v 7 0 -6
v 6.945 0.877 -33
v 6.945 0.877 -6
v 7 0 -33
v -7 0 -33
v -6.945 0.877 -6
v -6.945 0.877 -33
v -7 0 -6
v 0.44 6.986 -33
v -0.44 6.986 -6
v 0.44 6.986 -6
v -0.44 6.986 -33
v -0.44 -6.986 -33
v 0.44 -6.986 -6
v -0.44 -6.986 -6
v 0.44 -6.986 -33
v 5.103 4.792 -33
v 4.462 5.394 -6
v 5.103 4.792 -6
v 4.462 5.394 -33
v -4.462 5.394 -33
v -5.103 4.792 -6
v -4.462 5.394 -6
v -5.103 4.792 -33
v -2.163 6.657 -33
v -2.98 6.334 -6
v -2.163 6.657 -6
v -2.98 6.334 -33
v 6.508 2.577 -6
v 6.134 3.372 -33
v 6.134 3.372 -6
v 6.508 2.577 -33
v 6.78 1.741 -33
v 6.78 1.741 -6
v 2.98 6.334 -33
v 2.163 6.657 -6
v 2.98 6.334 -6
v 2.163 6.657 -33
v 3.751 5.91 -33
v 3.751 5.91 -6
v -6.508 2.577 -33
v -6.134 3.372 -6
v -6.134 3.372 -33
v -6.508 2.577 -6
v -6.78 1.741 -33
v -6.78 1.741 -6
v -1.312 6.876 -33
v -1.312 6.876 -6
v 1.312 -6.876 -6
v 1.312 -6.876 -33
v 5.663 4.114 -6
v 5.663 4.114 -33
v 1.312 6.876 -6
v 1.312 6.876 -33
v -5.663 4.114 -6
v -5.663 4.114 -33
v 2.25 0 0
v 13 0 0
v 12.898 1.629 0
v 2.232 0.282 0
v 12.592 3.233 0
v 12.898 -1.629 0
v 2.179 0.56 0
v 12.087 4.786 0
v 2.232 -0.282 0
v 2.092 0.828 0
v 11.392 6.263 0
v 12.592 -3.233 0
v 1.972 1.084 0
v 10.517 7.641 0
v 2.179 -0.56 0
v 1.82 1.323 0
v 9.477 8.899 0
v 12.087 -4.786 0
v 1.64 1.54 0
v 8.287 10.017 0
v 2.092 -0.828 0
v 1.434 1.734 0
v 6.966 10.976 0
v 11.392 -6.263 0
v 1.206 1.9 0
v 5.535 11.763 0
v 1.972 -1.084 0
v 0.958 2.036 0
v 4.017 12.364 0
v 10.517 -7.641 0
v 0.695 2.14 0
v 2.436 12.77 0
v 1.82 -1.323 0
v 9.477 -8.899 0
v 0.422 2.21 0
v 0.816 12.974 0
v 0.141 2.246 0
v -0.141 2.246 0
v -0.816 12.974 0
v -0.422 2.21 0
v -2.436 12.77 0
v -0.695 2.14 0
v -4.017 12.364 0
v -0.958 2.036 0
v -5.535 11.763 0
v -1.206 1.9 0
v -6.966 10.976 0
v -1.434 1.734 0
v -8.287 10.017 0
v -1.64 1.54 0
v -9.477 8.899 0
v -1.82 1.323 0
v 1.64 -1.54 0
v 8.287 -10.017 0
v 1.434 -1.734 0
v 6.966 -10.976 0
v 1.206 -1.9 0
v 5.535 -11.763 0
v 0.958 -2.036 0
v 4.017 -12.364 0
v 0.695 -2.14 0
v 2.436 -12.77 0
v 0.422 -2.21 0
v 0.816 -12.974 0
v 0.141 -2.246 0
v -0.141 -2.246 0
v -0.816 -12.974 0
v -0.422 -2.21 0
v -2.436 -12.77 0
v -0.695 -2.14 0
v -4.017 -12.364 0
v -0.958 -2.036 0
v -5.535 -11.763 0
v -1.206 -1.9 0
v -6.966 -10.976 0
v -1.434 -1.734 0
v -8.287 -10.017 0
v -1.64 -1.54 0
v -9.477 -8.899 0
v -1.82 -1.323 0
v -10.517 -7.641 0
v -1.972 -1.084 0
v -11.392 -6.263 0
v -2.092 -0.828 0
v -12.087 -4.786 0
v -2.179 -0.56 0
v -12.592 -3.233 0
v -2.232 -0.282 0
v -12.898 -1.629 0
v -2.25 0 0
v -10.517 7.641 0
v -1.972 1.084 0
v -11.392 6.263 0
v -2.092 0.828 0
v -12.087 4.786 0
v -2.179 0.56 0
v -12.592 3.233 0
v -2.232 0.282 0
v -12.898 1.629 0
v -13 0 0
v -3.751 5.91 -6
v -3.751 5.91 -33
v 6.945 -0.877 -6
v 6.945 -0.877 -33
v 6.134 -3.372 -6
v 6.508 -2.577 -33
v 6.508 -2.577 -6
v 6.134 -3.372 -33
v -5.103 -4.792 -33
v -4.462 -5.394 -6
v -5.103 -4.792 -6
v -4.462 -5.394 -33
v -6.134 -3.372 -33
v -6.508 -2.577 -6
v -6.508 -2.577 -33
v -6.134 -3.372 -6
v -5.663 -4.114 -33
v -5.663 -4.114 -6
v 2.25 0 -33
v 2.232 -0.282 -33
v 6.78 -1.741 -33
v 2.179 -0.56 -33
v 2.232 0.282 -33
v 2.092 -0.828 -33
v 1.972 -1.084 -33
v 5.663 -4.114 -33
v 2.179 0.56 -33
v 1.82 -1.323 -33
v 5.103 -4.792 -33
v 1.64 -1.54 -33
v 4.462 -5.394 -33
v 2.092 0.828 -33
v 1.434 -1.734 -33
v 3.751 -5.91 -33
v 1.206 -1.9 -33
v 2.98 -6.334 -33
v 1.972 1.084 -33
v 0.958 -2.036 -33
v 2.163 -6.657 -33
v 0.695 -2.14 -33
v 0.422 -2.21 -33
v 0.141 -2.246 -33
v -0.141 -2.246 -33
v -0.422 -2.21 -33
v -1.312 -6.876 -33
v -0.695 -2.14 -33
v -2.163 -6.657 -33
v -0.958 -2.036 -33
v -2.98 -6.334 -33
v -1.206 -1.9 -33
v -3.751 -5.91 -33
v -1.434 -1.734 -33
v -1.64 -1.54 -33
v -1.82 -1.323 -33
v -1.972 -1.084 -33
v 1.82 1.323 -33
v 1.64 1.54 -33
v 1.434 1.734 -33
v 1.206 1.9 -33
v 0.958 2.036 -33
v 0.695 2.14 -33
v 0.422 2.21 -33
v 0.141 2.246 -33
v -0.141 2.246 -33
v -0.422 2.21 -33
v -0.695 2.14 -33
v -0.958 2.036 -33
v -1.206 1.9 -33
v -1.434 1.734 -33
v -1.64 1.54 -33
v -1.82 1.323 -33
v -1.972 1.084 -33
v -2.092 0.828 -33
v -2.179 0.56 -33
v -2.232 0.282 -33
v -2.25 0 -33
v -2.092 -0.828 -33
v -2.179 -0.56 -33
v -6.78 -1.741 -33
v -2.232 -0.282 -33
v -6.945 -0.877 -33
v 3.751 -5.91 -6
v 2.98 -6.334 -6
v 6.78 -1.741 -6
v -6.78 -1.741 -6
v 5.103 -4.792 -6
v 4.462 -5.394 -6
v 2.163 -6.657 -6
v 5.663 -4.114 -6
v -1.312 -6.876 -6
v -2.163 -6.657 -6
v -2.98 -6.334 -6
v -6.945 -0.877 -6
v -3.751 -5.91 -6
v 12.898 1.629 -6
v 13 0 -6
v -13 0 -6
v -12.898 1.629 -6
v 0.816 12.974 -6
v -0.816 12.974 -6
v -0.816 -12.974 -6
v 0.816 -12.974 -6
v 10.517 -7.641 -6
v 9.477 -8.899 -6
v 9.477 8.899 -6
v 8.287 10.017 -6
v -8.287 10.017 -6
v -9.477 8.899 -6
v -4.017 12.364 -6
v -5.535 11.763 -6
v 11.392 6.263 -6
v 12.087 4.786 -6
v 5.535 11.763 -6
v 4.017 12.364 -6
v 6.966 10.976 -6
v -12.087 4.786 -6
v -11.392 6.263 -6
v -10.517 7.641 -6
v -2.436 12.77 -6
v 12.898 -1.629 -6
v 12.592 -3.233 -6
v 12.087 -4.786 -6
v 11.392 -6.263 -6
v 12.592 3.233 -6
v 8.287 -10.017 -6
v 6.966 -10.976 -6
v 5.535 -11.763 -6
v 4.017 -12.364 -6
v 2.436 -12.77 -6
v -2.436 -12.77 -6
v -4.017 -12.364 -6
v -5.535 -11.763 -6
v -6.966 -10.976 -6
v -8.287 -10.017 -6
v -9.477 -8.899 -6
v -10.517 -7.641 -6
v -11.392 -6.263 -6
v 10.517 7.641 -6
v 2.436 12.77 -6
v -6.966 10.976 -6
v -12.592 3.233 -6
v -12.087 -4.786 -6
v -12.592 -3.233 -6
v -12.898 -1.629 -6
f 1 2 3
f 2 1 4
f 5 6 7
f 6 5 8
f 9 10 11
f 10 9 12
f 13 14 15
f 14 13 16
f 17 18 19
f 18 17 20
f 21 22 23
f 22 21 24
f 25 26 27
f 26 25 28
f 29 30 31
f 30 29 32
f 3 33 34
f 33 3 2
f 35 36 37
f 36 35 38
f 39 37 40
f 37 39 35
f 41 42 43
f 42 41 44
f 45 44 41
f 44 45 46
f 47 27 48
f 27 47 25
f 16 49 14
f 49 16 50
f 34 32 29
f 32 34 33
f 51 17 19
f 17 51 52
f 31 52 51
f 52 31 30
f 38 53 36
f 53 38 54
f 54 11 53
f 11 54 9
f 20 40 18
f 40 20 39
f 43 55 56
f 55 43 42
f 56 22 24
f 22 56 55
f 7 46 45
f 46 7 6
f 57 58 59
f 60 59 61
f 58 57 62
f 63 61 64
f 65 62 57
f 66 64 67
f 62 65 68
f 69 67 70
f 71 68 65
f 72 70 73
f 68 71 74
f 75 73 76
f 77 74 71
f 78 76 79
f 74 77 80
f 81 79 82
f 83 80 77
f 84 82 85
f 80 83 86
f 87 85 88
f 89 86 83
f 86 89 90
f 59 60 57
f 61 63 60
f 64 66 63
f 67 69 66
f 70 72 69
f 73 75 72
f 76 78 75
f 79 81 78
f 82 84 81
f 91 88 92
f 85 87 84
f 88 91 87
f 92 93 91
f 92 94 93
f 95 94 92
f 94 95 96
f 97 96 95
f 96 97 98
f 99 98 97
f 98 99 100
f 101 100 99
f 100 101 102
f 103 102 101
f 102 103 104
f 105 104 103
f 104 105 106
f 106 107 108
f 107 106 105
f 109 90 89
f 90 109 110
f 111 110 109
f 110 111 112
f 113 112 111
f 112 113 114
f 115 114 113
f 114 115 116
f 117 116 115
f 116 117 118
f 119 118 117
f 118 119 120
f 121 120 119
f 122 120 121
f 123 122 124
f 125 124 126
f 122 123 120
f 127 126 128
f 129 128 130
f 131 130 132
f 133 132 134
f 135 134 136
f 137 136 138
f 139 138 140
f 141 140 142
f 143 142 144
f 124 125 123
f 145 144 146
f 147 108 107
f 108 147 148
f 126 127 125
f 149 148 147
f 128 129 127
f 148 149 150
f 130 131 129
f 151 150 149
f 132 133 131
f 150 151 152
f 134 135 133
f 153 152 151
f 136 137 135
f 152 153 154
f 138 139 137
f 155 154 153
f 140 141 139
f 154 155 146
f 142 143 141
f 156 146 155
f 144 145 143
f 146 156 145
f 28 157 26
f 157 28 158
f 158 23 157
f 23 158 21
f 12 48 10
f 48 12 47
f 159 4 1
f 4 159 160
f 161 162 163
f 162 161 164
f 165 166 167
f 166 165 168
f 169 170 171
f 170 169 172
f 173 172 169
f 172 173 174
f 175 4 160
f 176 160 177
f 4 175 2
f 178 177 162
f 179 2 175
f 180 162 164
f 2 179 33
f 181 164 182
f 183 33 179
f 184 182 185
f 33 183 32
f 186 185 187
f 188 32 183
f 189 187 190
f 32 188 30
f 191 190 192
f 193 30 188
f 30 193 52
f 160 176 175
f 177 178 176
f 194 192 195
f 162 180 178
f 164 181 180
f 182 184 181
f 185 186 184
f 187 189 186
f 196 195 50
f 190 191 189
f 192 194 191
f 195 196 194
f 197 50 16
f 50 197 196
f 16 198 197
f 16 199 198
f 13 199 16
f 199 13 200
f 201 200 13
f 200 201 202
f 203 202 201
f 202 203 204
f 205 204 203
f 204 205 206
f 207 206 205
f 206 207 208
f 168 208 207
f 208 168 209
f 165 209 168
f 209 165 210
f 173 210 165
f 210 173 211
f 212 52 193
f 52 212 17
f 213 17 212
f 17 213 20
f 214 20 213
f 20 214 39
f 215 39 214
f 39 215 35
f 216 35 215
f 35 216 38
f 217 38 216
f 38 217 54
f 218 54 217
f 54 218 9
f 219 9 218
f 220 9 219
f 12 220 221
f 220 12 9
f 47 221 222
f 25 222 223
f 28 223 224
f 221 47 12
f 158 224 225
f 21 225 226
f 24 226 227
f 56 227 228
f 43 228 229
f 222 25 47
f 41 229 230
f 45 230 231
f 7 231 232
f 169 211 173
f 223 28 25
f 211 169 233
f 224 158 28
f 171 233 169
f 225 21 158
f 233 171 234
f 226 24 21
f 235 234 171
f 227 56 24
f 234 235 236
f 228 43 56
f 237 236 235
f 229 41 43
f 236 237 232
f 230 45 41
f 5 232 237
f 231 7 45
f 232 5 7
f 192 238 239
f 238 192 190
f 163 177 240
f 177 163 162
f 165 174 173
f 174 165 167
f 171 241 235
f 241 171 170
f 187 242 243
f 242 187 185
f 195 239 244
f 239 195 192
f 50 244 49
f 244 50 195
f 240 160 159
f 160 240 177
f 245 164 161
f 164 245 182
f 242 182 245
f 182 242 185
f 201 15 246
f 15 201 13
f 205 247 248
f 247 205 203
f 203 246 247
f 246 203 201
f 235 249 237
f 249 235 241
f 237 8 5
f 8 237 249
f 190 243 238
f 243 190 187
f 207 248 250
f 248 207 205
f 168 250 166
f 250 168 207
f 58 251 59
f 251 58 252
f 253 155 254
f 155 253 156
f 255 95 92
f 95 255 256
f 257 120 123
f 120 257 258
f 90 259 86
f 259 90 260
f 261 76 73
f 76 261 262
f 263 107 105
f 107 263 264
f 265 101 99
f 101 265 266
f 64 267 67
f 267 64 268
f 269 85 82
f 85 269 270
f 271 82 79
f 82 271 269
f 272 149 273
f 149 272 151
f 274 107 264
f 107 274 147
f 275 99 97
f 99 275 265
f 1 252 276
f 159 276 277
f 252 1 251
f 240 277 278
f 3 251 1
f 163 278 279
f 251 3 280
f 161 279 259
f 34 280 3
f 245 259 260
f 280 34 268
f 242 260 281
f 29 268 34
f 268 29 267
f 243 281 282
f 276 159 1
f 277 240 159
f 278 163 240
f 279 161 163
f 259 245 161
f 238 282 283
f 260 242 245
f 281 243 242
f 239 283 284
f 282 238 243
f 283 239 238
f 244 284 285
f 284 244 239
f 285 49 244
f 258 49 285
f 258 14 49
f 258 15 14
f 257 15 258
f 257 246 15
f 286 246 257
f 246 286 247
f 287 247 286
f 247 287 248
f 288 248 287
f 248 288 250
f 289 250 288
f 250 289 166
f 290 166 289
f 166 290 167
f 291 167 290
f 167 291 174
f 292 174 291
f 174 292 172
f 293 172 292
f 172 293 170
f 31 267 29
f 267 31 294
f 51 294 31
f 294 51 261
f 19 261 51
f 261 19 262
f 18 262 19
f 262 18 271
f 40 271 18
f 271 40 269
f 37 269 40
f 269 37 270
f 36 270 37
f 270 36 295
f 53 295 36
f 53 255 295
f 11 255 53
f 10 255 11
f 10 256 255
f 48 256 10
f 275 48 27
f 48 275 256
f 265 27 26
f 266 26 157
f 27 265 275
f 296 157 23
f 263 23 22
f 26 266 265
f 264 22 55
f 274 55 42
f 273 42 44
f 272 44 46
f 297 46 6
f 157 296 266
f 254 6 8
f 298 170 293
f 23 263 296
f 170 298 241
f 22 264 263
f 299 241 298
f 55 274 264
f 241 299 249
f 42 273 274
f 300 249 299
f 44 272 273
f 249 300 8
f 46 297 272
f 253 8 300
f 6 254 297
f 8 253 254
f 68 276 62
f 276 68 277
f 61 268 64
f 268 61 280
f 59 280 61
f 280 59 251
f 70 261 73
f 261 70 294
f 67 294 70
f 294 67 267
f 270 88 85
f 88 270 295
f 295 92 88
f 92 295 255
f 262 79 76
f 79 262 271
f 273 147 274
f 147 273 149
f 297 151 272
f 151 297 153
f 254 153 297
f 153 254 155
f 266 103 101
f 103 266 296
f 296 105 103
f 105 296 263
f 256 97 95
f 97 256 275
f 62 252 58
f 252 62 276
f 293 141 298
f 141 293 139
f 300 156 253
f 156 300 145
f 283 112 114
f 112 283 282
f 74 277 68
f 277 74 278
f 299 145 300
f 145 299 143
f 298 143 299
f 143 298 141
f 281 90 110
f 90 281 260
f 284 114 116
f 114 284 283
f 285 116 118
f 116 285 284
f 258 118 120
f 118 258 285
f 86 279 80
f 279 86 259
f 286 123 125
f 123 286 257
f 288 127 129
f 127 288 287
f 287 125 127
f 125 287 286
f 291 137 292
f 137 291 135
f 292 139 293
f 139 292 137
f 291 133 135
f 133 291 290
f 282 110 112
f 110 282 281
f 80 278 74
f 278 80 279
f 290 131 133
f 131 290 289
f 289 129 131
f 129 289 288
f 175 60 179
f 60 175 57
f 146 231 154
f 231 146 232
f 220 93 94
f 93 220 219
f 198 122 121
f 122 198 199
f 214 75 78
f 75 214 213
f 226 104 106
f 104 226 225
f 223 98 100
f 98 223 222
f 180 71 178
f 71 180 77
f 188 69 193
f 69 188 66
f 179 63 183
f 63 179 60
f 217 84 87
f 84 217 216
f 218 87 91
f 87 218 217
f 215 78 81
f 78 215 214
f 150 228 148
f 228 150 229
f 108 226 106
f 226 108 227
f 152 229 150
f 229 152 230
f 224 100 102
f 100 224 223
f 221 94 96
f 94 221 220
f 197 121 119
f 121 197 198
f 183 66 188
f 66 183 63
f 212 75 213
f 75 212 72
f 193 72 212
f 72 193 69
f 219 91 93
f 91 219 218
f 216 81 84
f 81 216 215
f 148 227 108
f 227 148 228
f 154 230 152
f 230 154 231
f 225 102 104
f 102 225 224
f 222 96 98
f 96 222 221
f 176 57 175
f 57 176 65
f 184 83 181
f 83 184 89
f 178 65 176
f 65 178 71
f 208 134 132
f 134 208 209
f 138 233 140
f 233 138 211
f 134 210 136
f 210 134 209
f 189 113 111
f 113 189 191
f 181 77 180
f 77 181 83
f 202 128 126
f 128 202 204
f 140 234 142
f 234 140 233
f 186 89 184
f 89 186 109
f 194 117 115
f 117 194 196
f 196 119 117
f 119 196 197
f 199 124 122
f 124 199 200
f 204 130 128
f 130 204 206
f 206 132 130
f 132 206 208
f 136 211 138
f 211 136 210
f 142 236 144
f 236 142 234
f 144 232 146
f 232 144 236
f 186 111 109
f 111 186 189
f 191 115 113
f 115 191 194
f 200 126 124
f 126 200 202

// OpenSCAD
$fn = 50;


difference() {
	union() {
		translate(v = [0, 0, -33.0000000000]) {
			cylinder(h = 33, r = 7.0000000000);
		}
		translate(v = [0, 0, -6.0000000000]) {
			cylinder(h = 6, r = 13.0000000000);
		}
	}
	union() {
		#translate(v = [0, 0, -33]) {
			cylinder(h = 33, r = 2.2500000000);
		}
	}
}
